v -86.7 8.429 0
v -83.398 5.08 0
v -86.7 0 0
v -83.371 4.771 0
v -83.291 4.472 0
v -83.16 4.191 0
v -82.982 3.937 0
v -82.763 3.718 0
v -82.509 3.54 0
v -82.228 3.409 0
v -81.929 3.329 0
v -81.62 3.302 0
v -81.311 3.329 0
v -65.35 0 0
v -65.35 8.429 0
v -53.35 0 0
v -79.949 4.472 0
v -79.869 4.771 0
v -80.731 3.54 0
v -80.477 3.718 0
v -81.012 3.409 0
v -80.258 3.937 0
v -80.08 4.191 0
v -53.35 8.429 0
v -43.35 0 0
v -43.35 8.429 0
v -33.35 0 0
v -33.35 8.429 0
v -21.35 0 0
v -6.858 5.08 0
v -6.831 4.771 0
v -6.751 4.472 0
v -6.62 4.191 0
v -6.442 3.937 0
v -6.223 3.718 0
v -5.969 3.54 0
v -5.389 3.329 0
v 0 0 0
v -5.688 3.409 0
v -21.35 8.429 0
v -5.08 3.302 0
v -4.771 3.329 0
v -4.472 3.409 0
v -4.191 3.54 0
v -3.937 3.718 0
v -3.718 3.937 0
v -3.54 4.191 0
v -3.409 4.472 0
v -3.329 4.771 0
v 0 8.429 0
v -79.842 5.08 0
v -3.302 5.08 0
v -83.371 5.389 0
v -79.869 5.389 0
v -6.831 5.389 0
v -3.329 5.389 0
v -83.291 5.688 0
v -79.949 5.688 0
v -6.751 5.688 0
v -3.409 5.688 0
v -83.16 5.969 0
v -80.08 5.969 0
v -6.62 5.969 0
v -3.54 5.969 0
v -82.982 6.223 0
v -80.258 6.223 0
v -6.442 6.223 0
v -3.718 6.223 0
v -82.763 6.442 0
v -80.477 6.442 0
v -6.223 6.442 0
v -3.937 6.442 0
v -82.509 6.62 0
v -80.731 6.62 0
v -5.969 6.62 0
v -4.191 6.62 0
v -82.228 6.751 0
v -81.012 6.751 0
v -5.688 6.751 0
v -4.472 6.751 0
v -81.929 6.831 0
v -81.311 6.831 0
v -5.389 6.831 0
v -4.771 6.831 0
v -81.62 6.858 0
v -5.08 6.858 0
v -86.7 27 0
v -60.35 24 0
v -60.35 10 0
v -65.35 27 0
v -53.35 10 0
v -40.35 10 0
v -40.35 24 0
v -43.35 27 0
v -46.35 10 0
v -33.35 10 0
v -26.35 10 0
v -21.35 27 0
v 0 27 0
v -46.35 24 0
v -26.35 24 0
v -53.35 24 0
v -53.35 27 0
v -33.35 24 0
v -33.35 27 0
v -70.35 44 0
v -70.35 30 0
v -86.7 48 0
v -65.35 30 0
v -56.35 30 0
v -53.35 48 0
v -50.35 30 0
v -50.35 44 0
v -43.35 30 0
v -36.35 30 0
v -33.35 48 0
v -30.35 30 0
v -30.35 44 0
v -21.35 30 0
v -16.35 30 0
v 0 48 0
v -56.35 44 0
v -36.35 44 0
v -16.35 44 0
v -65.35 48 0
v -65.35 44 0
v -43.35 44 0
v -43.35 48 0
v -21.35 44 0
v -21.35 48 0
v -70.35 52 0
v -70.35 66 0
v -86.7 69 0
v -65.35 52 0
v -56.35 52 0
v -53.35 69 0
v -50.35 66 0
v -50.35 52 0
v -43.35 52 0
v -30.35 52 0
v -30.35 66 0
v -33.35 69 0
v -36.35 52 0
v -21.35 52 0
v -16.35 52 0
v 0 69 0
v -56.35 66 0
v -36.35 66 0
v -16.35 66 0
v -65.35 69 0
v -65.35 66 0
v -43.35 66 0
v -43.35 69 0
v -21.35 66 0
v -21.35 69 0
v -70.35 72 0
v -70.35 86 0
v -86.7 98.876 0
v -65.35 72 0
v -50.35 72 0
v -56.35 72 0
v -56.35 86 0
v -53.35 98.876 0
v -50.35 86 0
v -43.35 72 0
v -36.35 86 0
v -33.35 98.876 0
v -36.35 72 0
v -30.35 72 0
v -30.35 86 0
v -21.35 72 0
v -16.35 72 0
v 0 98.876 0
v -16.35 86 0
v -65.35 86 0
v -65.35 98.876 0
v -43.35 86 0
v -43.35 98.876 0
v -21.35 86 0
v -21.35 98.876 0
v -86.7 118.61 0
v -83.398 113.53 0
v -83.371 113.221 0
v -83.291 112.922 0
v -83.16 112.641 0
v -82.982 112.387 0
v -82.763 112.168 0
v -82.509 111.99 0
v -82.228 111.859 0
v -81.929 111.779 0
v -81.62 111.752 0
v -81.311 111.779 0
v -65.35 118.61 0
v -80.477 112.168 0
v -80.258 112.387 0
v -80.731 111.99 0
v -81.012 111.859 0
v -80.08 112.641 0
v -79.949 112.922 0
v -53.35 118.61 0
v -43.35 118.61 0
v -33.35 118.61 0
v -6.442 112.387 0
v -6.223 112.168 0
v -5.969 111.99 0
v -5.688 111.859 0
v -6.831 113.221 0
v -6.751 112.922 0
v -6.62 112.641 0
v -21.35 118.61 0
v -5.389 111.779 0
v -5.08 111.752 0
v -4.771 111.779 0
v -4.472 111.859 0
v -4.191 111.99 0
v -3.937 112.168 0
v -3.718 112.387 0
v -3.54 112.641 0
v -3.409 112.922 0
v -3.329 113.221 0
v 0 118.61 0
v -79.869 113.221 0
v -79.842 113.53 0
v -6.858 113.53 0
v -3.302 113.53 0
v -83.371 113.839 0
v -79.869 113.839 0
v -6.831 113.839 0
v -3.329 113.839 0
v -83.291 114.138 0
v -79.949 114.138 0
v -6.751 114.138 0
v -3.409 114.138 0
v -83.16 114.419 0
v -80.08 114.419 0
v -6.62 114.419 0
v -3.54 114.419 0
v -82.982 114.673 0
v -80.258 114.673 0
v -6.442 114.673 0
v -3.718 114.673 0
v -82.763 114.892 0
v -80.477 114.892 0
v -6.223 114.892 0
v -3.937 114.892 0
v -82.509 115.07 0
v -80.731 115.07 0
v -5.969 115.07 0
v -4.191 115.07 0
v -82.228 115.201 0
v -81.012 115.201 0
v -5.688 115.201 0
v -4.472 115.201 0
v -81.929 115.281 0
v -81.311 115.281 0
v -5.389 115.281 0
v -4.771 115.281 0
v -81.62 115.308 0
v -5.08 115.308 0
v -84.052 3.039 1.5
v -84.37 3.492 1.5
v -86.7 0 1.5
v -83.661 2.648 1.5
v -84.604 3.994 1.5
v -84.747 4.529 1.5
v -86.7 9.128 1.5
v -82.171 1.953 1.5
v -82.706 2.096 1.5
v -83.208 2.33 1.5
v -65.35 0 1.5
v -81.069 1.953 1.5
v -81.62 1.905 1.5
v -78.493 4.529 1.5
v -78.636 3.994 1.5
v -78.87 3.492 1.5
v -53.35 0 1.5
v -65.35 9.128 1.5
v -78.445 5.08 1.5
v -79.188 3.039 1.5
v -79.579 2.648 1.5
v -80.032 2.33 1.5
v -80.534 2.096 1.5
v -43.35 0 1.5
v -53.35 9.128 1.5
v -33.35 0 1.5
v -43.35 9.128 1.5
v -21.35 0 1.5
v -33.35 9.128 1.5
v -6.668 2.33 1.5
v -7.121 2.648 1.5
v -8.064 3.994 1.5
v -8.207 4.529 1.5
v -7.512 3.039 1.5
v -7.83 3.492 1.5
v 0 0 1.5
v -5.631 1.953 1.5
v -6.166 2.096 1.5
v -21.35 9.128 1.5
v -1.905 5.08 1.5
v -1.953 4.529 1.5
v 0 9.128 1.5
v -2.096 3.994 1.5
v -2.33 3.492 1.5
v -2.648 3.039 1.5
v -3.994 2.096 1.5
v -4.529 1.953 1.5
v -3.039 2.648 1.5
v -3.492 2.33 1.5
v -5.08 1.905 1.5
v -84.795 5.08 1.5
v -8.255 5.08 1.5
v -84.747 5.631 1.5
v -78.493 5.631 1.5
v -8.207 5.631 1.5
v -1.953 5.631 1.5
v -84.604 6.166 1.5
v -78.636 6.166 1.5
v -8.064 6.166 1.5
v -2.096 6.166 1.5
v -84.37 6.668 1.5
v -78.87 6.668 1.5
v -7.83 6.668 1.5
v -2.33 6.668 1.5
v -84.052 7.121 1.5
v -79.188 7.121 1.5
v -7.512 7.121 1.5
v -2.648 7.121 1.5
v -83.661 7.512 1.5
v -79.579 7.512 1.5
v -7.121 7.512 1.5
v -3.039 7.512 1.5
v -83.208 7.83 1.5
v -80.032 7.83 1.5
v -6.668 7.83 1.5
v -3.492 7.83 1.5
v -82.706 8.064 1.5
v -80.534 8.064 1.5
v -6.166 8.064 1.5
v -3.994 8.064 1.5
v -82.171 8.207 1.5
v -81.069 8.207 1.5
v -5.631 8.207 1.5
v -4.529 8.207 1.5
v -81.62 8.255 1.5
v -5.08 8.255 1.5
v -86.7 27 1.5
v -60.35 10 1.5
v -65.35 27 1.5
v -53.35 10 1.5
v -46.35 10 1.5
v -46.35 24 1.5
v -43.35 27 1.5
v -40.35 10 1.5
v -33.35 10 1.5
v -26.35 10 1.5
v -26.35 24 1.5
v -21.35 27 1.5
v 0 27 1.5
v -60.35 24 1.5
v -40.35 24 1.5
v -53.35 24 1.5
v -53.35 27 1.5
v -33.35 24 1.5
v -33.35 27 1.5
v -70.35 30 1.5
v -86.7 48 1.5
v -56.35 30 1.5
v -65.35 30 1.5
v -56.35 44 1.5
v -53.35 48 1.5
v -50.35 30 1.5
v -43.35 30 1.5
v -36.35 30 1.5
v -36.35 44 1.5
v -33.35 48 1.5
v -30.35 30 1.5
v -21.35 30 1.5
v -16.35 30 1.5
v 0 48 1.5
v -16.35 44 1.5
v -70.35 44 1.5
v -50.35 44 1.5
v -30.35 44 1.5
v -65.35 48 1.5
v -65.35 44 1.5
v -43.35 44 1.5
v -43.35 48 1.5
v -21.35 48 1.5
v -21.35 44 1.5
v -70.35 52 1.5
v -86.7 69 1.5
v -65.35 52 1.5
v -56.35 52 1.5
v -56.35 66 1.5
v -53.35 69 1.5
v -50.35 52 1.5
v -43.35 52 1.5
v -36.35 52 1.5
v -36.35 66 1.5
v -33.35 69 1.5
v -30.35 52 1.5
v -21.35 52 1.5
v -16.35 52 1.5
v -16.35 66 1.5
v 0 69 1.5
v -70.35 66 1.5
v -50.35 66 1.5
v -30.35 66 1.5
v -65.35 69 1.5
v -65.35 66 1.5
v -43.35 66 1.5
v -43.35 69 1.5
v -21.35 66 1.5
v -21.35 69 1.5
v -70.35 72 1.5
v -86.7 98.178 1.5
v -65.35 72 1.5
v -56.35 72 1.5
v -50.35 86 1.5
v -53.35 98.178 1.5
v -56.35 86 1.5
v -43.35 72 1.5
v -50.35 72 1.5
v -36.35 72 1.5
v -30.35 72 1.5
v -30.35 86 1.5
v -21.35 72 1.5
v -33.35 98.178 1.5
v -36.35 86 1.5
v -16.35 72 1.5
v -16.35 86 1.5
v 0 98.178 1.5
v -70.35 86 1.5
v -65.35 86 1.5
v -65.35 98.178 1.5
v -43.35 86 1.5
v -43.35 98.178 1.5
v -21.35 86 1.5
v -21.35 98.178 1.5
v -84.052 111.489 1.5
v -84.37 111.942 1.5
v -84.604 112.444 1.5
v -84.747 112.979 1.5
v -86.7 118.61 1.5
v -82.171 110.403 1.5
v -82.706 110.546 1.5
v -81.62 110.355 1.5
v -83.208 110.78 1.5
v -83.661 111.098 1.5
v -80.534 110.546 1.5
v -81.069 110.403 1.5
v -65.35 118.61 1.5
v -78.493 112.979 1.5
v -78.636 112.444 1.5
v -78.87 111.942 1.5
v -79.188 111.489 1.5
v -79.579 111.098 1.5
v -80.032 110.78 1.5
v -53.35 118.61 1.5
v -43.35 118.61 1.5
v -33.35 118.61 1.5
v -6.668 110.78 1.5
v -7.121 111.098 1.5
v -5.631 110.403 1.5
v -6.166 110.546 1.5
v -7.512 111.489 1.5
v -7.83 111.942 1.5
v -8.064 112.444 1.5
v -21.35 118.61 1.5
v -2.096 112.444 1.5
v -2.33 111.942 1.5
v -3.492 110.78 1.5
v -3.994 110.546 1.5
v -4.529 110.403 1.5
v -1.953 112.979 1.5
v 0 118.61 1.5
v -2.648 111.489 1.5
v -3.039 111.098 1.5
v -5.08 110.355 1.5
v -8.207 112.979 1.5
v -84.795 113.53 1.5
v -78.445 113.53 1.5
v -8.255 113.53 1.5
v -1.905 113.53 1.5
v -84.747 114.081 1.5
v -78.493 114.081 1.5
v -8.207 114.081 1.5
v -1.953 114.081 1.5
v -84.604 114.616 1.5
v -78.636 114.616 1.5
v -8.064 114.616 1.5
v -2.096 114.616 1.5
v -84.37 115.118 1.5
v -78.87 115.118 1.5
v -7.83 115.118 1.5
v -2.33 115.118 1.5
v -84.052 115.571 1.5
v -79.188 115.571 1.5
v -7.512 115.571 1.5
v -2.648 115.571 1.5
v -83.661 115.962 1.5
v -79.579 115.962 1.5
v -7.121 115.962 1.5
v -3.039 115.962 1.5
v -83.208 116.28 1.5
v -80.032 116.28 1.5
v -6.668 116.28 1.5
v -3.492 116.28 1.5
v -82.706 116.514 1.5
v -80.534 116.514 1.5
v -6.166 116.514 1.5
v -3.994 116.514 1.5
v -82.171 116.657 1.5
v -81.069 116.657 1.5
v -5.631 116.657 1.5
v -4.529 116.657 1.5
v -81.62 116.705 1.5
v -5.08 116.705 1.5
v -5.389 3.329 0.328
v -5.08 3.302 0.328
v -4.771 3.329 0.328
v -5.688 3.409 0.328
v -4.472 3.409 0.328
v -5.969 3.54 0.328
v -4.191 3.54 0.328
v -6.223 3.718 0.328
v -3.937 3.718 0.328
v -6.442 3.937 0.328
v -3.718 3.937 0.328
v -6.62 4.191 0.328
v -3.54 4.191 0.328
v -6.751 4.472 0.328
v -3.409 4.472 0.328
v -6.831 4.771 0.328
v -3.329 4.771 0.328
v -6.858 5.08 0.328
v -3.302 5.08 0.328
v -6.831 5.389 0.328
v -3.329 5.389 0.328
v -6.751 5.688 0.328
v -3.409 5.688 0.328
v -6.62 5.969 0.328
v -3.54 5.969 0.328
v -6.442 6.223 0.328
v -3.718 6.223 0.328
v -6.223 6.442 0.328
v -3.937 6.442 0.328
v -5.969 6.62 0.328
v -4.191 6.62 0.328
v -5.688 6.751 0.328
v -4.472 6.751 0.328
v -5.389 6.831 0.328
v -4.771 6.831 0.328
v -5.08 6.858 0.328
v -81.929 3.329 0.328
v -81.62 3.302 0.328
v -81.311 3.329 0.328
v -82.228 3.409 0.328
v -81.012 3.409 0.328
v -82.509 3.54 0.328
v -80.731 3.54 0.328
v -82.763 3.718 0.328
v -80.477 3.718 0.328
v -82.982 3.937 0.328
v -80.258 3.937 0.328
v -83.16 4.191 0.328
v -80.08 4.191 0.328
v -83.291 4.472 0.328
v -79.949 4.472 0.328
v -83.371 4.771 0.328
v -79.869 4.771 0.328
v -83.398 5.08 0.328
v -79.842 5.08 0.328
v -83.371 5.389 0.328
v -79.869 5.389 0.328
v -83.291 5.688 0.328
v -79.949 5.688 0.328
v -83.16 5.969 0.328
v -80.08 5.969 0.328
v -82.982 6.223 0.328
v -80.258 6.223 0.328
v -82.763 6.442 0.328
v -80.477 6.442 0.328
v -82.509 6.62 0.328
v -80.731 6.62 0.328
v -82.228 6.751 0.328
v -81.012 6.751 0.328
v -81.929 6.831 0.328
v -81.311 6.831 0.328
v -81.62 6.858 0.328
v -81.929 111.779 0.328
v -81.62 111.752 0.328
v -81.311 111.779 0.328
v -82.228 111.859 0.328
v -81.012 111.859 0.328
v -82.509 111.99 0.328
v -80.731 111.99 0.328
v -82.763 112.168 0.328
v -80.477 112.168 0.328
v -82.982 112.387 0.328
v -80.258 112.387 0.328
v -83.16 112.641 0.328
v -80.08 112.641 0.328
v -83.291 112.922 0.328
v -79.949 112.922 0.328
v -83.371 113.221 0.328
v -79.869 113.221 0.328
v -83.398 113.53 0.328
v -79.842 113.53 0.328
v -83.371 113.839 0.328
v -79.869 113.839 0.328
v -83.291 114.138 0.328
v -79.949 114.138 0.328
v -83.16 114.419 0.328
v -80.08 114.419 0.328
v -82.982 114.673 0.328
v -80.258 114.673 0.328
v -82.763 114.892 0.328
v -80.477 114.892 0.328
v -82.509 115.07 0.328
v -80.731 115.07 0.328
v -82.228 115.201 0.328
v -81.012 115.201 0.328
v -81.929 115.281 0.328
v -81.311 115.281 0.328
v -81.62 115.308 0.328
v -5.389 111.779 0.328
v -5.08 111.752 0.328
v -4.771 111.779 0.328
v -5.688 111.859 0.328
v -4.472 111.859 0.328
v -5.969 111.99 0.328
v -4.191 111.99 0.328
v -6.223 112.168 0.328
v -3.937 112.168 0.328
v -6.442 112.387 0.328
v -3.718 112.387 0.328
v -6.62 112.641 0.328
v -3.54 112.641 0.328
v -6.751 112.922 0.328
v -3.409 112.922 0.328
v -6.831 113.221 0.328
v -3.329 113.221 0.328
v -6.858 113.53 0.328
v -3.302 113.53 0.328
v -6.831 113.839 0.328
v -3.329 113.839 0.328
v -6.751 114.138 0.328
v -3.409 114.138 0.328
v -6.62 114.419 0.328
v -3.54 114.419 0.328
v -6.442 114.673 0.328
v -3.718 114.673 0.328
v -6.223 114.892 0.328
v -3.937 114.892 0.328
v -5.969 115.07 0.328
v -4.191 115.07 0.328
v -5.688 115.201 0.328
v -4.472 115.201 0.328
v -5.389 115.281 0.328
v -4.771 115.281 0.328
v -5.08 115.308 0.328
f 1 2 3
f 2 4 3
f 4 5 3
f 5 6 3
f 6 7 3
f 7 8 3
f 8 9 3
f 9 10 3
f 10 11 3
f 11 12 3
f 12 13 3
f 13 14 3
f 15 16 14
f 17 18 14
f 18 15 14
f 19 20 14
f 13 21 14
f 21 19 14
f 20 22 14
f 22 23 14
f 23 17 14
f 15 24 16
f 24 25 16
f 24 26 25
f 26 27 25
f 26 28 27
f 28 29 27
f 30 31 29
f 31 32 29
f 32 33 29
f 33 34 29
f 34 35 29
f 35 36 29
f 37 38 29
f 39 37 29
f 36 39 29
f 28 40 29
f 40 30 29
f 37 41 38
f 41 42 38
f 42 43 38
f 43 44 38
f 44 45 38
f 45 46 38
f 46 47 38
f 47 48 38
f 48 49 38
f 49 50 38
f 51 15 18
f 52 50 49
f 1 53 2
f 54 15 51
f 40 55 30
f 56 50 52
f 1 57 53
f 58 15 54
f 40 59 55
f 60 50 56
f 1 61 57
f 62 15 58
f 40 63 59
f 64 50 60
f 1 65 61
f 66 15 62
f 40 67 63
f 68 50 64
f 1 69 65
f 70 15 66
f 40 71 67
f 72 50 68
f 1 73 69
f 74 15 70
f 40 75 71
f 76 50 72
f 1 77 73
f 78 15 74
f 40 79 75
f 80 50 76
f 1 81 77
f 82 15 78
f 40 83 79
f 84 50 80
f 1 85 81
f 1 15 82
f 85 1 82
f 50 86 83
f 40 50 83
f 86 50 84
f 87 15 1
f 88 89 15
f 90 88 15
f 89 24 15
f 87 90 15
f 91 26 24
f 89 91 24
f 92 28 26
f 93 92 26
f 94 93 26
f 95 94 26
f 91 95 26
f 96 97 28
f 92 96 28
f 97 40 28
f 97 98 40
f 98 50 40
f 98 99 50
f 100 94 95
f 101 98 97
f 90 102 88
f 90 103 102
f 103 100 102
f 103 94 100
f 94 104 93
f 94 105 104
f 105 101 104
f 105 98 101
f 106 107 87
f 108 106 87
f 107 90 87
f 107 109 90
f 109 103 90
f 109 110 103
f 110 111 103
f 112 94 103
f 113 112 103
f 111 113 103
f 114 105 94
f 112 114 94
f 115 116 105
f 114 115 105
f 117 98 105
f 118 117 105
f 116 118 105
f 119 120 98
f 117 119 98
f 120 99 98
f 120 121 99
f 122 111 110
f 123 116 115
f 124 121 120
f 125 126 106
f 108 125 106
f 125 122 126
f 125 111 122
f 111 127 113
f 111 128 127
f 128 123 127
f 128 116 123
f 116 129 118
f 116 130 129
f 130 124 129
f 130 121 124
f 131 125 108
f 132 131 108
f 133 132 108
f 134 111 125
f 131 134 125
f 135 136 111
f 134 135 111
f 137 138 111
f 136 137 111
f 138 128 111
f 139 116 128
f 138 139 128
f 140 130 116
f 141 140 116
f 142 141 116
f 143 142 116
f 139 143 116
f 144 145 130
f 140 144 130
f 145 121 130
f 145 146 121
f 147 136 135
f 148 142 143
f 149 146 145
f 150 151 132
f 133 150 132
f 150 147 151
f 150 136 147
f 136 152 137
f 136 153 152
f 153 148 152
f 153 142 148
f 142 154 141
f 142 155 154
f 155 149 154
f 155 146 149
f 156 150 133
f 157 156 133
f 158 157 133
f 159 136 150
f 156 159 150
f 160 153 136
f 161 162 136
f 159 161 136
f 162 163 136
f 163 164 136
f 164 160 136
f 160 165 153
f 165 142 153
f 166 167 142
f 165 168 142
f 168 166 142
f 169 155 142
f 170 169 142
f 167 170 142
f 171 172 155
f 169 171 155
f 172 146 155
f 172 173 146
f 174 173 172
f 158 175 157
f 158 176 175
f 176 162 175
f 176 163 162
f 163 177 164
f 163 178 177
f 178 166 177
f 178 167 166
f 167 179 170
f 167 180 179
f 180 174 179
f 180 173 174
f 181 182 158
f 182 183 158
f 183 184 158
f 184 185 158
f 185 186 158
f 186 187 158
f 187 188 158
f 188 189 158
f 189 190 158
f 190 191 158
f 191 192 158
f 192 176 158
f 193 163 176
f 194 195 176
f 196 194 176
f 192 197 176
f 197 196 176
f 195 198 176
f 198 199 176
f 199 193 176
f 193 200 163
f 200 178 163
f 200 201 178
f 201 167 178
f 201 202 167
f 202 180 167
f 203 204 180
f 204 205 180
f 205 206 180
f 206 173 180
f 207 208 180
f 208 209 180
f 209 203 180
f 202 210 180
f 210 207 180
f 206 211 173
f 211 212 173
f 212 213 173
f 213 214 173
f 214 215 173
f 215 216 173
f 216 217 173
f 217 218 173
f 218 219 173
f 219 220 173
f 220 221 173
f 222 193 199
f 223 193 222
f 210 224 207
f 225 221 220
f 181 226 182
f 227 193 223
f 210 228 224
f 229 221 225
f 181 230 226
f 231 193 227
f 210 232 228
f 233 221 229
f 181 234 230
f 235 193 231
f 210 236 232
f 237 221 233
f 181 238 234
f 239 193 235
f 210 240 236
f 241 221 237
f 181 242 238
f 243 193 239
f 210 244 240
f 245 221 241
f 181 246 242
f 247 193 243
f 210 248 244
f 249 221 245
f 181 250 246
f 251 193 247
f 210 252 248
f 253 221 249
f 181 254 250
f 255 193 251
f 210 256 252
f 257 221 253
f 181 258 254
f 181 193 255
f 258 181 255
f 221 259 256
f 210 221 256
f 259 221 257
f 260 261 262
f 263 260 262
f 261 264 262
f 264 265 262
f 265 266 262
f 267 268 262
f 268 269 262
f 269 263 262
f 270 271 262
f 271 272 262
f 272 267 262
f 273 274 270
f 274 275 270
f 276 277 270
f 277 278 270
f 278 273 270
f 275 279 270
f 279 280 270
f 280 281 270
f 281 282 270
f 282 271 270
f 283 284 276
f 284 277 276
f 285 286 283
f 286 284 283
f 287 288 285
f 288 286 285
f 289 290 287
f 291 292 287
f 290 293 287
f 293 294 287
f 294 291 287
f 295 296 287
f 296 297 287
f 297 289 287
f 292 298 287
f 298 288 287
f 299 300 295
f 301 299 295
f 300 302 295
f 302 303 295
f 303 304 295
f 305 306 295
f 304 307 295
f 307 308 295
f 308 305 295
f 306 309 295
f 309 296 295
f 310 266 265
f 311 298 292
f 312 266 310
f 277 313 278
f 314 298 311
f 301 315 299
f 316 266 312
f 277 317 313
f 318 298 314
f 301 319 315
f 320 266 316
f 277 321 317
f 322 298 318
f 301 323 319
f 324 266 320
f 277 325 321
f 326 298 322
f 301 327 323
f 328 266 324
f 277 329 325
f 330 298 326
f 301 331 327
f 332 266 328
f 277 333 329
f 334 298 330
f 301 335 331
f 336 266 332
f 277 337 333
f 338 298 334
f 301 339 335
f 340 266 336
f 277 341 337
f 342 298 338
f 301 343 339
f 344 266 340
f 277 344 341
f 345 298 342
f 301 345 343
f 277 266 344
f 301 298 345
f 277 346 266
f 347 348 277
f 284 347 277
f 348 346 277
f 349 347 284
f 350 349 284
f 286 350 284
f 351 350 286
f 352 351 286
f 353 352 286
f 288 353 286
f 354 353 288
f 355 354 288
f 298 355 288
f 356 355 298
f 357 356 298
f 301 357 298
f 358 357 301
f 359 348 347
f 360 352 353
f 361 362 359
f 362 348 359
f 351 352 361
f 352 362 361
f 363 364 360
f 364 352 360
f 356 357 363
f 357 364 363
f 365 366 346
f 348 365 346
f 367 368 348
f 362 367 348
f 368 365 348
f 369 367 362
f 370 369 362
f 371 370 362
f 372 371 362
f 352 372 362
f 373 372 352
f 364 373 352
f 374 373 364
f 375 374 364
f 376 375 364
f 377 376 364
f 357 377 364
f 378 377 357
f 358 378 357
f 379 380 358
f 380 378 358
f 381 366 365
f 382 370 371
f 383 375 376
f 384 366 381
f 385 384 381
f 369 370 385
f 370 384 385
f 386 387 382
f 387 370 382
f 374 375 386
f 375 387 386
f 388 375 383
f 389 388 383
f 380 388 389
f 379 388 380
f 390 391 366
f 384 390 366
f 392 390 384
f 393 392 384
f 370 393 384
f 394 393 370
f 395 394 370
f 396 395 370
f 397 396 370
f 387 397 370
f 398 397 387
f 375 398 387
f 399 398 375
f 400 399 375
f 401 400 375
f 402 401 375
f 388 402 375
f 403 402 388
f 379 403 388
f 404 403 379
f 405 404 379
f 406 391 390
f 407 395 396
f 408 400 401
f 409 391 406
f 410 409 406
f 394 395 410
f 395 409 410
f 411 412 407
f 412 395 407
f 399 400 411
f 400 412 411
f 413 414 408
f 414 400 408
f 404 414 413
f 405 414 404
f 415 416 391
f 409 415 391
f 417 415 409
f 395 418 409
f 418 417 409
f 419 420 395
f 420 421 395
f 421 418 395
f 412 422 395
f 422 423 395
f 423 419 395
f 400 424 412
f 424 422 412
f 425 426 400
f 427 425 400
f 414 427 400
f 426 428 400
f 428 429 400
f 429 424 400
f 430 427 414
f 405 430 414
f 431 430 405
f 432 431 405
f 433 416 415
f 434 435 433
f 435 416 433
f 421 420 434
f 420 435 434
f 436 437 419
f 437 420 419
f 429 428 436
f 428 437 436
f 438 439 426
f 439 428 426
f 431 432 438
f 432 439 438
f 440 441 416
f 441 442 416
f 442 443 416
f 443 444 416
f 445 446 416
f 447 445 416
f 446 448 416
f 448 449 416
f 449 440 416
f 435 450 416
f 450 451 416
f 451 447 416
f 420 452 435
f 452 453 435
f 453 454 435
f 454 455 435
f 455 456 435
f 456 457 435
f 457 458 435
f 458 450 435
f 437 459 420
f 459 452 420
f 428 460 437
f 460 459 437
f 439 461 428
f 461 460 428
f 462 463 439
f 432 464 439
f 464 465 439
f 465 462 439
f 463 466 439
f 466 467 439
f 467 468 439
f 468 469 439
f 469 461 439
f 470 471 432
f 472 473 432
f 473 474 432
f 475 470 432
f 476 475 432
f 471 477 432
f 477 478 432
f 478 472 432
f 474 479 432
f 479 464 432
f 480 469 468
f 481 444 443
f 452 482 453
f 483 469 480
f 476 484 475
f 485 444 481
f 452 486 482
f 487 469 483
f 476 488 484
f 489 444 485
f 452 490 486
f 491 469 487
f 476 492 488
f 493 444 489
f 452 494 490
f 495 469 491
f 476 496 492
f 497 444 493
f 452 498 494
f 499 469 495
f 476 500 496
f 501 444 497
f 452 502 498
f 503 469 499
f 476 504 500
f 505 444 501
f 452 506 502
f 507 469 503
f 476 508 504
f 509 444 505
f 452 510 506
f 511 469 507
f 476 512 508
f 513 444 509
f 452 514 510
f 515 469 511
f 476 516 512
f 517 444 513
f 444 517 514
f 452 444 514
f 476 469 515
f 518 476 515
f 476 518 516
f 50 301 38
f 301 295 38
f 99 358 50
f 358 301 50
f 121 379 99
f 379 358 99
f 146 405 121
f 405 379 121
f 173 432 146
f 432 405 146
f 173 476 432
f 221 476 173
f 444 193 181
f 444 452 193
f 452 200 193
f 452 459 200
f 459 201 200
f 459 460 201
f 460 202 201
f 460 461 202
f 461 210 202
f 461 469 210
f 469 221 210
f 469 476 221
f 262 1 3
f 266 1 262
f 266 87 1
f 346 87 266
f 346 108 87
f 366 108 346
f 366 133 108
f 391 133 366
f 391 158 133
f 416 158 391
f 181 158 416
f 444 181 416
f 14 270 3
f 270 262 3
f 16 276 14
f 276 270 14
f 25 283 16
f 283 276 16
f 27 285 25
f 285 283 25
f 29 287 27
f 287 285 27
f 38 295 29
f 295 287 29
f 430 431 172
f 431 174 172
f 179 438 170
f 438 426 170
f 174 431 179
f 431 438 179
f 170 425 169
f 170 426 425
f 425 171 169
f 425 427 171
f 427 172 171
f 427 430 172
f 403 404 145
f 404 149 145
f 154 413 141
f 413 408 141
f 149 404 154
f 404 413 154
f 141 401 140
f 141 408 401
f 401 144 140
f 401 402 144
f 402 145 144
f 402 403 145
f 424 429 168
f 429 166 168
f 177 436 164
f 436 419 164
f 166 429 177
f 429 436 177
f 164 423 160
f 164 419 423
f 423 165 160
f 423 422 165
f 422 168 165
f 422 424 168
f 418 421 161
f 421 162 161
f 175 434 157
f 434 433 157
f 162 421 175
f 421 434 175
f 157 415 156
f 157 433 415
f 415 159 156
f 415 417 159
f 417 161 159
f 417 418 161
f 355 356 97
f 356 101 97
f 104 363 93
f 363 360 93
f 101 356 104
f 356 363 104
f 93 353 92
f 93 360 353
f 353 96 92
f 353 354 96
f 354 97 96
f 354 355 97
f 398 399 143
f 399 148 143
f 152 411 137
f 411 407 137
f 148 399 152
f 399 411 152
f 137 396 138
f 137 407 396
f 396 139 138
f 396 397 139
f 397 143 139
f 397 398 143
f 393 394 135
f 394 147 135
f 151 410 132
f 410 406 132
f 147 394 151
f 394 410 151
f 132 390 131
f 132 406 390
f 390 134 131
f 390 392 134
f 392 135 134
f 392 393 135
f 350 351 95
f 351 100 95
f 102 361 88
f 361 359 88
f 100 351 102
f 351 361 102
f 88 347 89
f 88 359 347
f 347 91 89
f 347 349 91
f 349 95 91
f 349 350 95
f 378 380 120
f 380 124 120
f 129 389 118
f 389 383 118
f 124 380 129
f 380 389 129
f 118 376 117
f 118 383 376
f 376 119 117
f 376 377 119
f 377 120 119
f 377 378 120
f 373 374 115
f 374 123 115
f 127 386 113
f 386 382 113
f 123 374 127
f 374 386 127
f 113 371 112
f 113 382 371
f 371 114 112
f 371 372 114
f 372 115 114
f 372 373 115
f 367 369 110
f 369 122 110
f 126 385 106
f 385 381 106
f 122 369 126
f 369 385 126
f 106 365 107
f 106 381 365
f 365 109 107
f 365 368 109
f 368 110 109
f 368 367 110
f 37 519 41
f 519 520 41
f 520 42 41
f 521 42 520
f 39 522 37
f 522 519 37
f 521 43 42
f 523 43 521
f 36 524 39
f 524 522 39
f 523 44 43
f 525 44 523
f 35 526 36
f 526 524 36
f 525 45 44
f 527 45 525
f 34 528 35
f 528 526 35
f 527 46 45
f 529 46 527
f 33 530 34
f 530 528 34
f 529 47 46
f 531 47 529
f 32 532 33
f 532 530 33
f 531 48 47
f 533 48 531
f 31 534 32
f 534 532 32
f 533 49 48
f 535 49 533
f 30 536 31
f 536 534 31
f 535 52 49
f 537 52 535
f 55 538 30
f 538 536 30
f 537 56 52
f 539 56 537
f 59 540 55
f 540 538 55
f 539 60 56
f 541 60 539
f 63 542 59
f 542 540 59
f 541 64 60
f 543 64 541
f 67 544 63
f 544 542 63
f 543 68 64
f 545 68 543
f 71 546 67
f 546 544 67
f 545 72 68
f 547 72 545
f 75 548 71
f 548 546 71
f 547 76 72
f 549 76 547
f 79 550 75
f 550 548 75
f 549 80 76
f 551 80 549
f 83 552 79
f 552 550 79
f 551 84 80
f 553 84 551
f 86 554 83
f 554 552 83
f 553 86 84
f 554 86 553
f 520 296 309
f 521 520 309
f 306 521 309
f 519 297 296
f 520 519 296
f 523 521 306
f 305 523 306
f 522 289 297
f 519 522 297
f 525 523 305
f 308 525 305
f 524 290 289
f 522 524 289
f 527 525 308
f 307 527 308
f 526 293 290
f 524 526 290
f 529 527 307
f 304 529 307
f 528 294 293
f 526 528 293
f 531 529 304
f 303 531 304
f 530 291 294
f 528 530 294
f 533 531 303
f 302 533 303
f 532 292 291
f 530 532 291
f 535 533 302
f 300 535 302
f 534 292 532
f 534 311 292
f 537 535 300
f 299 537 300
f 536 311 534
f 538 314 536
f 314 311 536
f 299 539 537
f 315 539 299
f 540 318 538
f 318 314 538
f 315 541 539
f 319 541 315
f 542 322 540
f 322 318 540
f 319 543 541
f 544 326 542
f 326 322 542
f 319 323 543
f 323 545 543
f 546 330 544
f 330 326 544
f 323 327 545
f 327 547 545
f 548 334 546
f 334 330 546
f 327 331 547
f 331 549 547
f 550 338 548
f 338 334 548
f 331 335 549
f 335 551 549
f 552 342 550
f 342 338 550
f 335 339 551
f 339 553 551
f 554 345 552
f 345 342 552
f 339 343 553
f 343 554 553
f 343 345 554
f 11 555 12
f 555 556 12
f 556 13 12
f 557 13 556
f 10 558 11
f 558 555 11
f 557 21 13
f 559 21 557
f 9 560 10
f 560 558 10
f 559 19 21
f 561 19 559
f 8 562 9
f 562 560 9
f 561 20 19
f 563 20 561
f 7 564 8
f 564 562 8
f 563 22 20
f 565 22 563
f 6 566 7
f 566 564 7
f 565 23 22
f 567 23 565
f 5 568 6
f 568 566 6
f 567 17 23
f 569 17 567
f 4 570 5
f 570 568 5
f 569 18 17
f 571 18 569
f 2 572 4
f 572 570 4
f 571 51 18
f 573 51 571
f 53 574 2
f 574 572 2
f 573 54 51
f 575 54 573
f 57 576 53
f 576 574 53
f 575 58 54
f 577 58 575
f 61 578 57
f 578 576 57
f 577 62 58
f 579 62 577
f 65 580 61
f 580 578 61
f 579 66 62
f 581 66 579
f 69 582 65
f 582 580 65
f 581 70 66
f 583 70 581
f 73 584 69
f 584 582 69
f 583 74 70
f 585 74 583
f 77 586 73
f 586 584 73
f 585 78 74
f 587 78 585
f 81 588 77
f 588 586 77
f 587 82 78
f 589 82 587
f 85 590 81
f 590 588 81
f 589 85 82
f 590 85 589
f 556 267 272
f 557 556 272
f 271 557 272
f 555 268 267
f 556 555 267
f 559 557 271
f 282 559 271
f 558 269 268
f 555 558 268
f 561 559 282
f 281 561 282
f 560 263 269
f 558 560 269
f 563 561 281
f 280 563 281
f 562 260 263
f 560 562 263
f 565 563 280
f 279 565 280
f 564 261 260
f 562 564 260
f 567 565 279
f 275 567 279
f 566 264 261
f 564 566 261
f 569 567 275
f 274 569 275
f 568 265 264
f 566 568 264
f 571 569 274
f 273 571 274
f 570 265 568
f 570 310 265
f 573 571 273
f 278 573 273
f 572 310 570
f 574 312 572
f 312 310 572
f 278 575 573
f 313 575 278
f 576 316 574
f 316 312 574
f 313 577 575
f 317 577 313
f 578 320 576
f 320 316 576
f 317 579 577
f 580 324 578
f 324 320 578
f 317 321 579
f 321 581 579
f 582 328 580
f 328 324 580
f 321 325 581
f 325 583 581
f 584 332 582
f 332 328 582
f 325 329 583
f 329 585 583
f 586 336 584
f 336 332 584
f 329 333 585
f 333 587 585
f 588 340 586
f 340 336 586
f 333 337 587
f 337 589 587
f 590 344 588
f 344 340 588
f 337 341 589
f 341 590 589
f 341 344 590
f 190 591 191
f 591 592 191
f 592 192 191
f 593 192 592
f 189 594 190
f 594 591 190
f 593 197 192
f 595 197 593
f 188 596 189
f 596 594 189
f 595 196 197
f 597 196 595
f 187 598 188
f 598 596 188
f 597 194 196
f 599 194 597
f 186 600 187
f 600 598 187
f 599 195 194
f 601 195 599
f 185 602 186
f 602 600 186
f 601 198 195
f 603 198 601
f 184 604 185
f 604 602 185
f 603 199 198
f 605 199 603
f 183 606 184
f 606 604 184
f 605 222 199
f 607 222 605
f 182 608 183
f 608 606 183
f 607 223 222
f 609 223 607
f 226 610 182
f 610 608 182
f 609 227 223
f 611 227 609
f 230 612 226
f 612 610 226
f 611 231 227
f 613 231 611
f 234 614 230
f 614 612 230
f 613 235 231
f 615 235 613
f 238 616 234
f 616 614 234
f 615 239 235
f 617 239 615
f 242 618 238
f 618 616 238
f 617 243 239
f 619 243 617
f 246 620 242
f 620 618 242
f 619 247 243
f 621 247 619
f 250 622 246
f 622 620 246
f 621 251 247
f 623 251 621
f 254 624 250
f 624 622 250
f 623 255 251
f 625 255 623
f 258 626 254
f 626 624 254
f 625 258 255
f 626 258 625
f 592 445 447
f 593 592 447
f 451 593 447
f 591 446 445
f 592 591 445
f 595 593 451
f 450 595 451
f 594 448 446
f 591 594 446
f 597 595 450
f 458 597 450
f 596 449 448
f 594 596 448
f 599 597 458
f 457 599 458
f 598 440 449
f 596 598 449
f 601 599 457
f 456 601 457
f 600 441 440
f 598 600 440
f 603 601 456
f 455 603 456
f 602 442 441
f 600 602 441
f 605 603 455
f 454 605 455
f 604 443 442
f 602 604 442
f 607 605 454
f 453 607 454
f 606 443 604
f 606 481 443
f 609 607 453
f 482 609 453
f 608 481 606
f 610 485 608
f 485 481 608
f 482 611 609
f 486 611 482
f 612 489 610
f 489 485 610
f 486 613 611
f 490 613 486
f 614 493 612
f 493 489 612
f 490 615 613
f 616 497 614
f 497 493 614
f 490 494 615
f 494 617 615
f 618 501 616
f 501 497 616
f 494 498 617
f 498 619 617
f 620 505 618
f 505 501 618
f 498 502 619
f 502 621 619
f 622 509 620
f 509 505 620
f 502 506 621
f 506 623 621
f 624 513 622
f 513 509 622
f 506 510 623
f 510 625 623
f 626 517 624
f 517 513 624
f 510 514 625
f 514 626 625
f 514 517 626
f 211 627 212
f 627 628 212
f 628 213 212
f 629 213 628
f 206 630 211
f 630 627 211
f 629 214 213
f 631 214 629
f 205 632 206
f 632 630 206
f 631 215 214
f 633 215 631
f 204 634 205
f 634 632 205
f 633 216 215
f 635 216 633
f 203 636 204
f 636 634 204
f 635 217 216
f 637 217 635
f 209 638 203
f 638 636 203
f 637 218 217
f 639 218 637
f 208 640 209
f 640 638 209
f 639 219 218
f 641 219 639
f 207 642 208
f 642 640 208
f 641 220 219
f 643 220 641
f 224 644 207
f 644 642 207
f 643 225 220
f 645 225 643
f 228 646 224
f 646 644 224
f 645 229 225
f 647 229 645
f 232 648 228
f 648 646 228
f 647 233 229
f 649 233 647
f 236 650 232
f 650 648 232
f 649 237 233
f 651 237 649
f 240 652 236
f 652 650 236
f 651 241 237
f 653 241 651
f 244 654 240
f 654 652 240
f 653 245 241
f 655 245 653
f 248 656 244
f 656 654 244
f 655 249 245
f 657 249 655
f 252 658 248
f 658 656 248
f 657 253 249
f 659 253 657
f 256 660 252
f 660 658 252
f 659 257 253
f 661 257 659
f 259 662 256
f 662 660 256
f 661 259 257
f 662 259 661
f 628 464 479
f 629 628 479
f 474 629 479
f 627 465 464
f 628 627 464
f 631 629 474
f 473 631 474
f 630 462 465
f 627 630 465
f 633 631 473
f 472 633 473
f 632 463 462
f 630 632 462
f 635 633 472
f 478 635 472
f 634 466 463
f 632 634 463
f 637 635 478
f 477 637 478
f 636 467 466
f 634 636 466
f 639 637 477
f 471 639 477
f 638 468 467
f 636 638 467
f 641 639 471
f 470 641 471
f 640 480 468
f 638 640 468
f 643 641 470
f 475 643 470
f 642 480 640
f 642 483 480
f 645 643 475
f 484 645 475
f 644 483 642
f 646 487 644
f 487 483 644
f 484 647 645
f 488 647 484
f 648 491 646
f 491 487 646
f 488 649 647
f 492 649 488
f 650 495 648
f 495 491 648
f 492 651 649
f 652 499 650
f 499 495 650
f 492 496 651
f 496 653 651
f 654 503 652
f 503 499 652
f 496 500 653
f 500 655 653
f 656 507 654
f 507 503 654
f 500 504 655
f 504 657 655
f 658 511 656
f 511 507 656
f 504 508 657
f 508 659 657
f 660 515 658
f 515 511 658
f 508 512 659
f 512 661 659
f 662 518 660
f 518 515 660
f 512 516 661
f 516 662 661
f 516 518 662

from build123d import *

# Parameters (mm, degrees)
SKETCH1_W           = 86.7
SKETCH1_H           = 118.61
SKETCH1_W_2         = 14
SKETCH1_H_2         = 14
BOSS_EXTRUDE1_DEPTH = 1.5


# Read off the part's stored shape, not the designer's step: CSK for #0 Flat Head Machine Screw (100)1
with BuildPart() as part:
    # Sketch1 → Boss-Extrude1 (new body)
    with BuildSketch(Plane.XY):
        with Locations((-43.35, 59.305)):
            Rectangle(SKETCH1_W, SKETCH1_H)
        with Locations((-23.35, 37)):
            Rectangle(SKETCH1_W_2, SKETCH1_H_2, mode=Mode.SUBTRACT)
        with Locations((-23.35, 79)):
            Rectangle(SKETCH1_W_2, SKETCH1_H_2, mode=Mode.SUBTRACT)
        with Locations((-43.35, 79)):
            Rectangle(SKETCH1_W_2, SKETCH1_H_2, mode=Mode.SUBTRACT)
        with Locations((-63.35, 79)):
            Rectangle(SKETCH1_W_2, SKETCH1_H_2, mode=Mode.SUBTRACT)
        with Locations((-23.35, 59)):
            Rectangle(SKETCH1_W_2, SKETCH1_H_2, mode=Mode.SUBTRACT)
        with Locations((-43.35, 59)):
            Rectangle(SKETCH1_W_2, SKETCH1_H_2, mode=Mode.SUBTRACT)
        with Locations((-63.35, 59)):
            Rectangle(SKETCH1_W_2, SKETCH1_H_2, mode=Mode.SUBTRACT)
        with Locations((-43.35, 37)):
            Rectangle(SKETCH1_W_2, SKETCH1_H_2, mode=Mode.SUBTRACT)
        with Locations((-63.35, 37)):
            Rectangle(SKETCH1_W_2, SKETCH1_H_2, mode=Mode.SUBTRACT)
        with Locations((-33.35, 17)):
            Rectangle(SKETCH1_W_2, SKETCH1_H_2, mode=Mode.SUBTRACT)
        with Locations((-53.35, 17)):
            Rectangle(SKETCH1_W_2, SKETCH1_H_2, mode=Mode.SUBTRACT)
    extrude(amount=BOSS_EXTRUDE1_DEPTH)

    # CSK for _0 Flat Head Machine Screw _ 2 → CSK for #0 Flat Head Machine Screw (100)1 (revolve, cut)
    with BuildSketch(Plane(origin=(-5.08, 5.08, 0), x_dir=(1, 0, 0), z_dir=(0, -1, 0))):
        Polygon((0, 0), (1.778, 0), (1.778, 0.327777815), (3.175, 1.5), (0, 1.5), align=None)
    revolve(axis=Axis((-5.08, 5.08, 0), (0, 0, 1)), mode=Mode.SUBTRACT)

    # CSK for _0 Flat Head Machine Screw _ 3 o → CSK for _0 Flat Head Machine Screw _ 3 (revolve, cut)
    with BuildSketch(Plane(origin=(-81.62, 5.08, 0), x_dir=(1, 0, 0), z_dir=(0, -1, 0))):
        Polygon((0, 0), (1.778, 0), (1.778, 0.327777815), (3.175, 1.5), (0, 1.5), align=None)
    revolve(axis=Axis((-81.62, 5.08, 0), (0, 0, 1)), mode=Mode.SUBTRACT)

    # CSK for _0 Flat Head Machine Screw _ 4 o → CSK for _0 Flat Head Machine Screw _ 4 (revolve, cut)
    with BuildSketch(Plane(origin=(-81.62, 113.53, 0), x_dir=(1, 0, 0), z_dir=(0, -1, 0))):
        Polygon((0, 0), (1.778, 0), (1.778, 0.327777815), (3.175, 1.5), (0, 1.5), align=None)
    revolve(axis=Axis((-81.62, 113.53, 0), (0, 0, 1)), mode=Mode.SUBTRACT)

    # CSK for _0 Flat Head Machine Screw _ 5 o → CSK for _0 Flat Head Machine Screw _ 5 (revolve, cut)
    with BuildSketch(Plane(origin=(-5.08, 113.53, 0), x_dir=(1, 0, 0), z_dir=(0, -1, 0))):
        Polygon((0, 0), (1.778, 0), (1.778, 0.327777815), (3.175, 1.5), (0, 1.5), align=None)
    revolve(axis=Axis((-5.08, 113.53, 0), (0, 0, 1)), mode=Mode.SUBTRACT)


solid = part.part
